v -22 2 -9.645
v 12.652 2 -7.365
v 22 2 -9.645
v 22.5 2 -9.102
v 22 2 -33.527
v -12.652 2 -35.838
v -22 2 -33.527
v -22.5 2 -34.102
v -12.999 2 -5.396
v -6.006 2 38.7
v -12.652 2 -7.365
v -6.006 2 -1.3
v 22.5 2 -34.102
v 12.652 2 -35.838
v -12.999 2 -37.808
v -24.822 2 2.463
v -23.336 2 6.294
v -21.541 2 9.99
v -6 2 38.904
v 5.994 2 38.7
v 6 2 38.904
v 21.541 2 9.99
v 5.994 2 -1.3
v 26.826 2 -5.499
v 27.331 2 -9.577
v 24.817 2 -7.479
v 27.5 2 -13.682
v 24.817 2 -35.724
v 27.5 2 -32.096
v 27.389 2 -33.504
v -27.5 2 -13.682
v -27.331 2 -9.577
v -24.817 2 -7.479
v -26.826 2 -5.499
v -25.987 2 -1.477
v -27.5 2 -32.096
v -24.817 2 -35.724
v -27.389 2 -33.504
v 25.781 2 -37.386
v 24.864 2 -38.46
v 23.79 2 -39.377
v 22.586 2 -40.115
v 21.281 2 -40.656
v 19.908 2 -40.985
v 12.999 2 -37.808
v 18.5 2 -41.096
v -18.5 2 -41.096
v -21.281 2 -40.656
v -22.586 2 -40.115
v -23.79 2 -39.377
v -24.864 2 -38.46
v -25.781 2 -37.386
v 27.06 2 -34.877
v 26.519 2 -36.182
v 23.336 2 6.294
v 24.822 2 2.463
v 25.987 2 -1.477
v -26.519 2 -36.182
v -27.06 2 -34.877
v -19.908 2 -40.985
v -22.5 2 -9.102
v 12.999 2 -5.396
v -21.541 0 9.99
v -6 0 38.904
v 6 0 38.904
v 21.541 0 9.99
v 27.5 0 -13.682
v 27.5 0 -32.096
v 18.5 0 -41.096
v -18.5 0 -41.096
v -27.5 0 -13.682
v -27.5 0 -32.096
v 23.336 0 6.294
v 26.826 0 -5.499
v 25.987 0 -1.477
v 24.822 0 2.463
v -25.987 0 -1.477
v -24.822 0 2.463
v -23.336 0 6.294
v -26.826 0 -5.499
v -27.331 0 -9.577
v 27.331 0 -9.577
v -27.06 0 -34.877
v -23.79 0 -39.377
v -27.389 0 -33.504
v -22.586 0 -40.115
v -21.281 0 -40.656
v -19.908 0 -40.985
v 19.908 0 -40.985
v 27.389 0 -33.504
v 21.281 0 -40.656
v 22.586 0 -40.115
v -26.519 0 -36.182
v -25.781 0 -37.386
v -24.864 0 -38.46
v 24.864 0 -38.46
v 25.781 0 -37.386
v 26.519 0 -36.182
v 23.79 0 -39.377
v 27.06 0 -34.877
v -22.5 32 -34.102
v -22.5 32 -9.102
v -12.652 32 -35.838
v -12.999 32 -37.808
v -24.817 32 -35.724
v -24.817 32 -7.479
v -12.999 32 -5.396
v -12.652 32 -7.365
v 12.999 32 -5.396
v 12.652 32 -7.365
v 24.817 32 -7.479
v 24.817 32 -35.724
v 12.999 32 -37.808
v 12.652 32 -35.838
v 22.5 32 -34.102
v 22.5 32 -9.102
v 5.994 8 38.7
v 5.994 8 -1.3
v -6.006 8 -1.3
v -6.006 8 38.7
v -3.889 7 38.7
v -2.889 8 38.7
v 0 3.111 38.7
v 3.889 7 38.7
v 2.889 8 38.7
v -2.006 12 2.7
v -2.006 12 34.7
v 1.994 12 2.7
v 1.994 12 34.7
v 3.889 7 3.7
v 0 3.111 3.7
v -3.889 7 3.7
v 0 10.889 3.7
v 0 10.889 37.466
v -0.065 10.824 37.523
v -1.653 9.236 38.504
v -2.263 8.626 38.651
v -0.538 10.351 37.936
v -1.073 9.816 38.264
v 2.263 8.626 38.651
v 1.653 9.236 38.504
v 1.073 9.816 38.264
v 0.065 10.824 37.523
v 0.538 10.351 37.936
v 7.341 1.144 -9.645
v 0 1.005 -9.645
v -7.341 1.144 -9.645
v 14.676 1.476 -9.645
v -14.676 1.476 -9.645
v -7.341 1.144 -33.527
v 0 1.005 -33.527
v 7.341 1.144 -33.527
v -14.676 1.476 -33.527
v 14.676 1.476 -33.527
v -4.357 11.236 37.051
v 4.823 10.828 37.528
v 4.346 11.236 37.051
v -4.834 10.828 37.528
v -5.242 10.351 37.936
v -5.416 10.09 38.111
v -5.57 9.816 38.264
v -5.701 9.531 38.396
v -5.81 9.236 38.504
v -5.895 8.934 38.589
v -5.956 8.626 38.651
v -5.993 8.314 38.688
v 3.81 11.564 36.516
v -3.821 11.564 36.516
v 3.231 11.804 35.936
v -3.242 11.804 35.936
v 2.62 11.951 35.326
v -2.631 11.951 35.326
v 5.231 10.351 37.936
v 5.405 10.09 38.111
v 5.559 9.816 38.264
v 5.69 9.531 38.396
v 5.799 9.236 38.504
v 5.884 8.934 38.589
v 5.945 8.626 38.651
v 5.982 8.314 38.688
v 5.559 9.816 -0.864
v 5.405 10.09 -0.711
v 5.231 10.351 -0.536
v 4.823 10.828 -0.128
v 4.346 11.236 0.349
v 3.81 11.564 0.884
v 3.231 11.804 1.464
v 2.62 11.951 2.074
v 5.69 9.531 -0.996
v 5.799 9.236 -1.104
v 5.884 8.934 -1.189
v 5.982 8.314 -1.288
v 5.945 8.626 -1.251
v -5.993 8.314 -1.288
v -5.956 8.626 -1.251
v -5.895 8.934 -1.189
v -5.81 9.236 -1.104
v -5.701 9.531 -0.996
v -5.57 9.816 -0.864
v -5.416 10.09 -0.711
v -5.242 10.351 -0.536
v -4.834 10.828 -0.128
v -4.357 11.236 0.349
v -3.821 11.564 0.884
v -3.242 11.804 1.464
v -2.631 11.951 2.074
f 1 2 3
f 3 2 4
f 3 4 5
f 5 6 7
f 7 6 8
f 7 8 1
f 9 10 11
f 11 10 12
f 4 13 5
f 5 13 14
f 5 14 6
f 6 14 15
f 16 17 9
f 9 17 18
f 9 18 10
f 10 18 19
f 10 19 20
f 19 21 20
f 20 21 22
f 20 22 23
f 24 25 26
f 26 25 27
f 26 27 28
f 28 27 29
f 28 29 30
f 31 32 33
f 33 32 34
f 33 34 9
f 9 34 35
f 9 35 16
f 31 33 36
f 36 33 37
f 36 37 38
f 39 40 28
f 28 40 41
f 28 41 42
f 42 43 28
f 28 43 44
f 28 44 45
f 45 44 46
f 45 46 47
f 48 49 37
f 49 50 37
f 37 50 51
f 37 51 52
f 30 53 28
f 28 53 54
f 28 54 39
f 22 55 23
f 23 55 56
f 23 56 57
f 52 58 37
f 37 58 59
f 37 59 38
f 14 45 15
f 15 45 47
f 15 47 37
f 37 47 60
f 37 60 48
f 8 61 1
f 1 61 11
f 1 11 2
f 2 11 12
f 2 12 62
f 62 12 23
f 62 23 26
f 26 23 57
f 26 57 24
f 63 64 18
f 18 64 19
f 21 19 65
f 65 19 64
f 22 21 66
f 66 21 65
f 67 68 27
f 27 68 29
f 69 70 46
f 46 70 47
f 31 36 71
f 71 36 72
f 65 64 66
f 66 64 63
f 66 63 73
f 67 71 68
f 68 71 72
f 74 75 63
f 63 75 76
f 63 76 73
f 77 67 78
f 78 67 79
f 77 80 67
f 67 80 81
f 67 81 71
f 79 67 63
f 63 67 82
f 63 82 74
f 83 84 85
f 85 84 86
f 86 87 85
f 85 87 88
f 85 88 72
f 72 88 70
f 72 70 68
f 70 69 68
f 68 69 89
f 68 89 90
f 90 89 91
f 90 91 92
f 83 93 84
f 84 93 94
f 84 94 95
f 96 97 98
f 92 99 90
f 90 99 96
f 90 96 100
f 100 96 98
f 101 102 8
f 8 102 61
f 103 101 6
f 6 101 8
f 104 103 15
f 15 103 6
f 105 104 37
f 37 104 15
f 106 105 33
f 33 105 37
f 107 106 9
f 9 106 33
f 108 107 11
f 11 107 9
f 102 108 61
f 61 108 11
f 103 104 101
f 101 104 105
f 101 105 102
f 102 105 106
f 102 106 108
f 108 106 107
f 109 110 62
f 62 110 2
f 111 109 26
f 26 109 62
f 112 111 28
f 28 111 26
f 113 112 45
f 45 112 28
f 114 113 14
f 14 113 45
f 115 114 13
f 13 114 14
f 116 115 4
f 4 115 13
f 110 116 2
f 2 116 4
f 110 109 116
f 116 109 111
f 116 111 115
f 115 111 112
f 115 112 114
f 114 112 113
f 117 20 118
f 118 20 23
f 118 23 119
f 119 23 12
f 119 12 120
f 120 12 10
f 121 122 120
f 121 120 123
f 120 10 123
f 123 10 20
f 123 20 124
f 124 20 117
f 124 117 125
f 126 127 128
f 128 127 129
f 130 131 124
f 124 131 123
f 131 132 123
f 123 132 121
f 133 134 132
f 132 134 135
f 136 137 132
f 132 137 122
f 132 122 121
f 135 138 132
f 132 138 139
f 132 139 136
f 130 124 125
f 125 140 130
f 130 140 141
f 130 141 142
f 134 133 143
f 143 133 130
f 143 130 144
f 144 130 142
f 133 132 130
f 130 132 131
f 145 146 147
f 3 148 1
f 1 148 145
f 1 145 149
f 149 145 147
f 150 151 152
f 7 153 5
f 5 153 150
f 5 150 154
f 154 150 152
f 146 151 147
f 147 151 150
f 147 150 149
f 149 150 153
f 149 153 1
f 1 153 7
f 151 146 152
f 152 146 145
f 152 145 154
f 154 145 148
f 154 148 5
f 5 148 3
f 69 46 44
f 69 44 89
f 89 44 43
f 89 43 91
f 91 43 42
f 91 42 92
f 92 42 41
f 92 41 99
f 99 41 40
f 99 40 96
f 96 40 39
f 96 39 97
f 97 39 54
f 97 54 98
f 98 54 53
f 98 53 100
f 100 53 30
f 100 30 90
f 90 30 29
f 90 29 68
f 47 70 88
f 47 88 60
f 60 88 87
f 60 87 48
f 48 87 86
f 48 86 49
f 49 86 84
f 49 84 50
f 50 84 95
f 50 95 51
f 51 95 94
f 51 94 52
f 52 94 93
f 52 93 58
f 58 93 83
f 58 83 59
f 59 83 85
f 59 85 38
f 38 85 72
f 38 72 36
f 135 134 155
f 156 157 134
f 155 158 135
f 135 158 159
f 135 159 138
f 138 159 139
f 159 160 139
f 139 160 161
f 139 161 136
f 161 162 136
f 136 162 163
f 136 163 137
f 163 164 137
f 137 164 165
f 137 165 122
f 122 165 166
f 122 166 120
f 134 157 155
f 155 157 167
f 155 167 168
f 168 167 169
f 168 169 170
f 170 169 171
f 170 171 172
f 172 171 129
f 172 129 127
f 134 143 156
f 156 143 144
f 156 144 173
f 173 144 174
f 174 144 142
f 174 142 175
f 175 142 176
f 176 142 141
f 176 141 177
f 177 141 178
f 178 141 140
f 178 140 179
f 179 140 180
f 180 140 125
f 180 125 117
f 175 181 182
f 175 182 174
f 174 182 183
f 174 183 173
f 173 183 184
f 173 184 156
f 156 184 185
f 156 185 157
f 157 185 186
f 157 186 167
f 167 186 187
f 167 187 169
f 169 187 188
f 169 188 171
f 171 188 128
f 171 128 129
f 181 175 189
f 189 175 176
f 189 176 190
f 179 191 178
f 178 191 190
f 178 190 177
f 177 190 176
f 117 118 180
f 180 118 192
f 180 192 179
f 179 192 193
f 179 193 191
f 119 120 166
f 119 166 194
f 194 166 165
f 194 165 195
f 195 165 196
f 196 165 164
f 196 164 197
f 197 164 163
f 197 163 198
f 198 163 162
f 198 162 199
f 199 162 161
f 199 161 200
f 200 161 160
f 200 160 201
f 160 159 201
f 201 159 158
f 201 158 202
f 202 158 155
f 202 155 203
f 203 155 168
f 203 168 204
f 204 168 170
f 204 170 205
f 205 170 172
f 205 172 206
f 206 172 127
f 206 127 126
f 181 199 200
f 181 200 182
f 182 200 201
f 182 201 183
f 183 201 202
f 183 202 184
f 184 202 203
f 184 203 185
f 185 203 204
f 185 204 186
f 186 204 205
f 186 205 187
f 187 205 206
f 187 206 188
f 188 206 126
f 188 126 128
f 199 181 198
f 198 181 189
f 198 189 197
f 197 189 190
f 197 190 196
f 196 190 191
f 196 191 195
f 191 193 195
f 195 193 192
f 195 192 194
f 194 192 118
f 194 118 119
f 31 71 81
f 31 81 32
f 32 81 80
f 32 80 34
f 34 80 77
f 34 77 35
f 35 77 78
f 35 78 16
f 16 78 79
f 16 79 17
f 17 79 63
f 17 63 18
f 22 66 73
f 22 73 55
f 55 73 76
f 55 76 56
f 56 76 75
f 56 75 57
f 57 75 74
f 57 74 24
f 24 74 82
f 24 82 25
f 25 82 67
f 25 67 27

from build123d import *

# Parameters (mm, degrees)
BOSS_EXTRUDE1_DEPTH = 2
BOSS_EXTRUDE2_DEPTH = 30
SKETCH3_W           = 12
SKETCH3_H           = 40
BOSS_EXTRUDE3_DEPTH = 10
CUT_EXTRUDE1_DEPTH  = 35
SKETCH6_W           = 44
SKETCH6_H           = 23.882016553
CUT_EXTRUDE2_DEPTH  = 1
FILLET1_R           = 280
FILLET2_R           = 9
FILLET3_R           = 4
FILLET4_R           = 50


with BuildPart() as part:
    # Sketch1 → Boss-Extrude1 (new body)
    with BuildSketch(Plane(origin=(0, 0, 0), x_dir=(1, 0, 0), z_dir=(0, 1, 0))):
        Polygon((-27.5, 1.096246938), (-6, -38.903753062), (6, -38.903753062), (27.5, 1.096246938), (27.5, 41.096246938), (-27.5, 41.096246938), align=None)
    extrude(amount=BOSS_EXTRUDE1_DEPTH)

    # Sketch2 → Boss-Extrude2 (add)
    with BuildSketch(Plane(origin=(0, 2, 0), x_dir=(1, 0, 0), z_dir=(0, 1, 0))):
        Polygon((-22.5, 9.101662984), (-22.5, 34.101662984), (-12.65192247, 35.838144761), (-12.999218825, 37.807760267), (-24.816911861, 35.723982135), (-24.816911861, 7.479343833), (-12.999218825, 5.395565701), (-12.65192247, 7.365181207), align=None)
        Polygon((12.65192247, 7.365181207), (12.999218825, 5.395565701), (24.816911861, 7.479343833), (24.816911861, 35.723982135), (12.999218825, 37.807760267), (12.65192247, 35.838144761), (22.5, 34.101662984), (22.5, 9.101662984), align=None)
    extrude(amount=BOSS_EXTRUDE2_DEPTH)

    # Sketch3 → Boss-Extrude3 (add)
    with BuildSketch(Plane(origin=(0, 2, 0), x_dir=(1, 0, 0), z_dir=(0, 1, 0))):
        with Locations((-0.005517933, -18.7)):
            Rectangle(SKETCH3_W, SKETCH3_H)
    extrude(amount=BOSS_EXTRUDE3_DEPTH)

    # Sketch4 → Cut-Extrude1 (cut)
    with BuildSketch(Plane.XY.offset(38.7)):
        Polygon((0, 3.110912703), (3.889087297, 7), (0, 10.889087297), (-3.889087297, 7), align=None)
    extrude(amount=-CUT_EXTRUDE1_DEPTH, mode=Mode.SUBTRACT)

    # Sketch6 → Cut-Extrude2 (cut)
    with BuildSketch(Plane(origin=(0, 2, 0), x_dir=(1, 0, 0), z_dir=(0, 1, 0))):
        with Locations((0, 21.585626422)):
            Rectangle(SKETCH6_W, SKETCH6_H)
    extrude(amount=-CUT_EXTRUDE2_DEPTH, mode=Mode.SUBTRACT)

    # Fillet1
    # the kernel refuses this fillet: 280 mm, written as the material it adds along each edge
    with BuildSketch(Plane(origin=(22, 1, -92.634586786), x_dir=(0, 1, 0), z_dir=(0, 0, 1))) as fillet1_piece_1_section:
        with BuildLine():
            CenterArc((280, 23.643180835), FILLET1_R, 180, 4.843819526)
            Line((0, 23.643180835), (0, 0))
            Line((0, 0), (1, 0))
        make_face()
    fillet1_piece_1 = extrude(amount=142.097920729, mode=Mode.PRIVATE)
    fillet1_piece_1 = split(fillet1_piece_1, bisect_by=Plane(origin=(13.044676358, 1.194161729, -5.403581091), z_dir=(-0.17364817766692942, 0, -0.9848077530122082)), keep=Keep.TOP, mode=Mode.PRIVATE)
    fillet1_piece_1 = split(fillet1_piece_1, bisect_by=Plane(origin=(13.050161185, 1.194161729, -37.798777754), z_dir=(-0.1736481776669295, 0, 0.9848077530122082)), keep=Keep.TOP, mode=Mode.PRIVATE)
    add(fillet1_piece_1)
    with BuildSketch(Plane(origin=(-22, 1, -9.644618145), x_dir=(0, 1, 0), z_dir=(0, 0, -1))) as fillet1_piece_2:
        with BuildLine():
            CenterArc((280, 23.643180835), FILLET1_R, 180, 4.843819526)
            Line((0, 23.643180835), (0, 0))
            Line((0, 0), (1, 0))
        make_face()
    extrude(amount=23.882016554)

    # Fillet2
    fillet2_edges = [part.edges().sort_by_distance(p)[0] for p in [
        (-27.5, 1, -41.096246938),
        (27.5, 1, -41.096246938),
    ]]
    fillet(fillet2_edges, radius=FILLET2_R)

    # Fillet3
    # the kernel refuses this fillet: 4 mm, written as the material it takes off along each edge
    with BuildSketch(Plane(origin=(5.994482067, 12, 48.7), x_dir=(0, -1, 0), z_dir=(0, 0, -1)), Plane(origin=(-6.005517933, 12, -11.3), x_dir=(0, -1, 0), z_dir=(0, 0, 1))) as fillet3_piece_1:
        with BuildLine():
            CenterArc((FILLET3_R, FILLET3_R), FILLET3_R, 180, 90)
            Line((0, FILLET3_R), (0, 0))
            Line((0, 0), (FILLET3_R, 0))
        make_face()
    extrude(amount=60, mode=Mode.SUBTRACT)
    with BuildSketch(Plane(origin=(15.994482067, 12, -1.3), x_dir=(0, -1, 0), z_dir=(-1, 0, 0)), Plane(origin=(-16.005517933, 12, 38.7), x_dir=(0, -1, 0), z_dir=(1, 0, 0))) as fillet3_piece_2:
        with BuildLine():
            CenterArc((FILLET3_R, FILLET3_R), FILLET3_R, 180, 90)
            Line((0, FILLET3_R), (0, 0))
            Line((0, 0), (FILLET3_R, 0))
        make_face()
    extrude(amount=32, mode=Mode.SUBTRACT)

    # Fillet4
    fillet4_edges = [part.edges().sort_by_distance(p)[0] for p in [
        (-27.5, 1, -1.096246938),
        (27.5, 1, -1.096246938),
    ]]
    fillet(fillet4_edges, radius=FILLET4_R)


solid = part.part
